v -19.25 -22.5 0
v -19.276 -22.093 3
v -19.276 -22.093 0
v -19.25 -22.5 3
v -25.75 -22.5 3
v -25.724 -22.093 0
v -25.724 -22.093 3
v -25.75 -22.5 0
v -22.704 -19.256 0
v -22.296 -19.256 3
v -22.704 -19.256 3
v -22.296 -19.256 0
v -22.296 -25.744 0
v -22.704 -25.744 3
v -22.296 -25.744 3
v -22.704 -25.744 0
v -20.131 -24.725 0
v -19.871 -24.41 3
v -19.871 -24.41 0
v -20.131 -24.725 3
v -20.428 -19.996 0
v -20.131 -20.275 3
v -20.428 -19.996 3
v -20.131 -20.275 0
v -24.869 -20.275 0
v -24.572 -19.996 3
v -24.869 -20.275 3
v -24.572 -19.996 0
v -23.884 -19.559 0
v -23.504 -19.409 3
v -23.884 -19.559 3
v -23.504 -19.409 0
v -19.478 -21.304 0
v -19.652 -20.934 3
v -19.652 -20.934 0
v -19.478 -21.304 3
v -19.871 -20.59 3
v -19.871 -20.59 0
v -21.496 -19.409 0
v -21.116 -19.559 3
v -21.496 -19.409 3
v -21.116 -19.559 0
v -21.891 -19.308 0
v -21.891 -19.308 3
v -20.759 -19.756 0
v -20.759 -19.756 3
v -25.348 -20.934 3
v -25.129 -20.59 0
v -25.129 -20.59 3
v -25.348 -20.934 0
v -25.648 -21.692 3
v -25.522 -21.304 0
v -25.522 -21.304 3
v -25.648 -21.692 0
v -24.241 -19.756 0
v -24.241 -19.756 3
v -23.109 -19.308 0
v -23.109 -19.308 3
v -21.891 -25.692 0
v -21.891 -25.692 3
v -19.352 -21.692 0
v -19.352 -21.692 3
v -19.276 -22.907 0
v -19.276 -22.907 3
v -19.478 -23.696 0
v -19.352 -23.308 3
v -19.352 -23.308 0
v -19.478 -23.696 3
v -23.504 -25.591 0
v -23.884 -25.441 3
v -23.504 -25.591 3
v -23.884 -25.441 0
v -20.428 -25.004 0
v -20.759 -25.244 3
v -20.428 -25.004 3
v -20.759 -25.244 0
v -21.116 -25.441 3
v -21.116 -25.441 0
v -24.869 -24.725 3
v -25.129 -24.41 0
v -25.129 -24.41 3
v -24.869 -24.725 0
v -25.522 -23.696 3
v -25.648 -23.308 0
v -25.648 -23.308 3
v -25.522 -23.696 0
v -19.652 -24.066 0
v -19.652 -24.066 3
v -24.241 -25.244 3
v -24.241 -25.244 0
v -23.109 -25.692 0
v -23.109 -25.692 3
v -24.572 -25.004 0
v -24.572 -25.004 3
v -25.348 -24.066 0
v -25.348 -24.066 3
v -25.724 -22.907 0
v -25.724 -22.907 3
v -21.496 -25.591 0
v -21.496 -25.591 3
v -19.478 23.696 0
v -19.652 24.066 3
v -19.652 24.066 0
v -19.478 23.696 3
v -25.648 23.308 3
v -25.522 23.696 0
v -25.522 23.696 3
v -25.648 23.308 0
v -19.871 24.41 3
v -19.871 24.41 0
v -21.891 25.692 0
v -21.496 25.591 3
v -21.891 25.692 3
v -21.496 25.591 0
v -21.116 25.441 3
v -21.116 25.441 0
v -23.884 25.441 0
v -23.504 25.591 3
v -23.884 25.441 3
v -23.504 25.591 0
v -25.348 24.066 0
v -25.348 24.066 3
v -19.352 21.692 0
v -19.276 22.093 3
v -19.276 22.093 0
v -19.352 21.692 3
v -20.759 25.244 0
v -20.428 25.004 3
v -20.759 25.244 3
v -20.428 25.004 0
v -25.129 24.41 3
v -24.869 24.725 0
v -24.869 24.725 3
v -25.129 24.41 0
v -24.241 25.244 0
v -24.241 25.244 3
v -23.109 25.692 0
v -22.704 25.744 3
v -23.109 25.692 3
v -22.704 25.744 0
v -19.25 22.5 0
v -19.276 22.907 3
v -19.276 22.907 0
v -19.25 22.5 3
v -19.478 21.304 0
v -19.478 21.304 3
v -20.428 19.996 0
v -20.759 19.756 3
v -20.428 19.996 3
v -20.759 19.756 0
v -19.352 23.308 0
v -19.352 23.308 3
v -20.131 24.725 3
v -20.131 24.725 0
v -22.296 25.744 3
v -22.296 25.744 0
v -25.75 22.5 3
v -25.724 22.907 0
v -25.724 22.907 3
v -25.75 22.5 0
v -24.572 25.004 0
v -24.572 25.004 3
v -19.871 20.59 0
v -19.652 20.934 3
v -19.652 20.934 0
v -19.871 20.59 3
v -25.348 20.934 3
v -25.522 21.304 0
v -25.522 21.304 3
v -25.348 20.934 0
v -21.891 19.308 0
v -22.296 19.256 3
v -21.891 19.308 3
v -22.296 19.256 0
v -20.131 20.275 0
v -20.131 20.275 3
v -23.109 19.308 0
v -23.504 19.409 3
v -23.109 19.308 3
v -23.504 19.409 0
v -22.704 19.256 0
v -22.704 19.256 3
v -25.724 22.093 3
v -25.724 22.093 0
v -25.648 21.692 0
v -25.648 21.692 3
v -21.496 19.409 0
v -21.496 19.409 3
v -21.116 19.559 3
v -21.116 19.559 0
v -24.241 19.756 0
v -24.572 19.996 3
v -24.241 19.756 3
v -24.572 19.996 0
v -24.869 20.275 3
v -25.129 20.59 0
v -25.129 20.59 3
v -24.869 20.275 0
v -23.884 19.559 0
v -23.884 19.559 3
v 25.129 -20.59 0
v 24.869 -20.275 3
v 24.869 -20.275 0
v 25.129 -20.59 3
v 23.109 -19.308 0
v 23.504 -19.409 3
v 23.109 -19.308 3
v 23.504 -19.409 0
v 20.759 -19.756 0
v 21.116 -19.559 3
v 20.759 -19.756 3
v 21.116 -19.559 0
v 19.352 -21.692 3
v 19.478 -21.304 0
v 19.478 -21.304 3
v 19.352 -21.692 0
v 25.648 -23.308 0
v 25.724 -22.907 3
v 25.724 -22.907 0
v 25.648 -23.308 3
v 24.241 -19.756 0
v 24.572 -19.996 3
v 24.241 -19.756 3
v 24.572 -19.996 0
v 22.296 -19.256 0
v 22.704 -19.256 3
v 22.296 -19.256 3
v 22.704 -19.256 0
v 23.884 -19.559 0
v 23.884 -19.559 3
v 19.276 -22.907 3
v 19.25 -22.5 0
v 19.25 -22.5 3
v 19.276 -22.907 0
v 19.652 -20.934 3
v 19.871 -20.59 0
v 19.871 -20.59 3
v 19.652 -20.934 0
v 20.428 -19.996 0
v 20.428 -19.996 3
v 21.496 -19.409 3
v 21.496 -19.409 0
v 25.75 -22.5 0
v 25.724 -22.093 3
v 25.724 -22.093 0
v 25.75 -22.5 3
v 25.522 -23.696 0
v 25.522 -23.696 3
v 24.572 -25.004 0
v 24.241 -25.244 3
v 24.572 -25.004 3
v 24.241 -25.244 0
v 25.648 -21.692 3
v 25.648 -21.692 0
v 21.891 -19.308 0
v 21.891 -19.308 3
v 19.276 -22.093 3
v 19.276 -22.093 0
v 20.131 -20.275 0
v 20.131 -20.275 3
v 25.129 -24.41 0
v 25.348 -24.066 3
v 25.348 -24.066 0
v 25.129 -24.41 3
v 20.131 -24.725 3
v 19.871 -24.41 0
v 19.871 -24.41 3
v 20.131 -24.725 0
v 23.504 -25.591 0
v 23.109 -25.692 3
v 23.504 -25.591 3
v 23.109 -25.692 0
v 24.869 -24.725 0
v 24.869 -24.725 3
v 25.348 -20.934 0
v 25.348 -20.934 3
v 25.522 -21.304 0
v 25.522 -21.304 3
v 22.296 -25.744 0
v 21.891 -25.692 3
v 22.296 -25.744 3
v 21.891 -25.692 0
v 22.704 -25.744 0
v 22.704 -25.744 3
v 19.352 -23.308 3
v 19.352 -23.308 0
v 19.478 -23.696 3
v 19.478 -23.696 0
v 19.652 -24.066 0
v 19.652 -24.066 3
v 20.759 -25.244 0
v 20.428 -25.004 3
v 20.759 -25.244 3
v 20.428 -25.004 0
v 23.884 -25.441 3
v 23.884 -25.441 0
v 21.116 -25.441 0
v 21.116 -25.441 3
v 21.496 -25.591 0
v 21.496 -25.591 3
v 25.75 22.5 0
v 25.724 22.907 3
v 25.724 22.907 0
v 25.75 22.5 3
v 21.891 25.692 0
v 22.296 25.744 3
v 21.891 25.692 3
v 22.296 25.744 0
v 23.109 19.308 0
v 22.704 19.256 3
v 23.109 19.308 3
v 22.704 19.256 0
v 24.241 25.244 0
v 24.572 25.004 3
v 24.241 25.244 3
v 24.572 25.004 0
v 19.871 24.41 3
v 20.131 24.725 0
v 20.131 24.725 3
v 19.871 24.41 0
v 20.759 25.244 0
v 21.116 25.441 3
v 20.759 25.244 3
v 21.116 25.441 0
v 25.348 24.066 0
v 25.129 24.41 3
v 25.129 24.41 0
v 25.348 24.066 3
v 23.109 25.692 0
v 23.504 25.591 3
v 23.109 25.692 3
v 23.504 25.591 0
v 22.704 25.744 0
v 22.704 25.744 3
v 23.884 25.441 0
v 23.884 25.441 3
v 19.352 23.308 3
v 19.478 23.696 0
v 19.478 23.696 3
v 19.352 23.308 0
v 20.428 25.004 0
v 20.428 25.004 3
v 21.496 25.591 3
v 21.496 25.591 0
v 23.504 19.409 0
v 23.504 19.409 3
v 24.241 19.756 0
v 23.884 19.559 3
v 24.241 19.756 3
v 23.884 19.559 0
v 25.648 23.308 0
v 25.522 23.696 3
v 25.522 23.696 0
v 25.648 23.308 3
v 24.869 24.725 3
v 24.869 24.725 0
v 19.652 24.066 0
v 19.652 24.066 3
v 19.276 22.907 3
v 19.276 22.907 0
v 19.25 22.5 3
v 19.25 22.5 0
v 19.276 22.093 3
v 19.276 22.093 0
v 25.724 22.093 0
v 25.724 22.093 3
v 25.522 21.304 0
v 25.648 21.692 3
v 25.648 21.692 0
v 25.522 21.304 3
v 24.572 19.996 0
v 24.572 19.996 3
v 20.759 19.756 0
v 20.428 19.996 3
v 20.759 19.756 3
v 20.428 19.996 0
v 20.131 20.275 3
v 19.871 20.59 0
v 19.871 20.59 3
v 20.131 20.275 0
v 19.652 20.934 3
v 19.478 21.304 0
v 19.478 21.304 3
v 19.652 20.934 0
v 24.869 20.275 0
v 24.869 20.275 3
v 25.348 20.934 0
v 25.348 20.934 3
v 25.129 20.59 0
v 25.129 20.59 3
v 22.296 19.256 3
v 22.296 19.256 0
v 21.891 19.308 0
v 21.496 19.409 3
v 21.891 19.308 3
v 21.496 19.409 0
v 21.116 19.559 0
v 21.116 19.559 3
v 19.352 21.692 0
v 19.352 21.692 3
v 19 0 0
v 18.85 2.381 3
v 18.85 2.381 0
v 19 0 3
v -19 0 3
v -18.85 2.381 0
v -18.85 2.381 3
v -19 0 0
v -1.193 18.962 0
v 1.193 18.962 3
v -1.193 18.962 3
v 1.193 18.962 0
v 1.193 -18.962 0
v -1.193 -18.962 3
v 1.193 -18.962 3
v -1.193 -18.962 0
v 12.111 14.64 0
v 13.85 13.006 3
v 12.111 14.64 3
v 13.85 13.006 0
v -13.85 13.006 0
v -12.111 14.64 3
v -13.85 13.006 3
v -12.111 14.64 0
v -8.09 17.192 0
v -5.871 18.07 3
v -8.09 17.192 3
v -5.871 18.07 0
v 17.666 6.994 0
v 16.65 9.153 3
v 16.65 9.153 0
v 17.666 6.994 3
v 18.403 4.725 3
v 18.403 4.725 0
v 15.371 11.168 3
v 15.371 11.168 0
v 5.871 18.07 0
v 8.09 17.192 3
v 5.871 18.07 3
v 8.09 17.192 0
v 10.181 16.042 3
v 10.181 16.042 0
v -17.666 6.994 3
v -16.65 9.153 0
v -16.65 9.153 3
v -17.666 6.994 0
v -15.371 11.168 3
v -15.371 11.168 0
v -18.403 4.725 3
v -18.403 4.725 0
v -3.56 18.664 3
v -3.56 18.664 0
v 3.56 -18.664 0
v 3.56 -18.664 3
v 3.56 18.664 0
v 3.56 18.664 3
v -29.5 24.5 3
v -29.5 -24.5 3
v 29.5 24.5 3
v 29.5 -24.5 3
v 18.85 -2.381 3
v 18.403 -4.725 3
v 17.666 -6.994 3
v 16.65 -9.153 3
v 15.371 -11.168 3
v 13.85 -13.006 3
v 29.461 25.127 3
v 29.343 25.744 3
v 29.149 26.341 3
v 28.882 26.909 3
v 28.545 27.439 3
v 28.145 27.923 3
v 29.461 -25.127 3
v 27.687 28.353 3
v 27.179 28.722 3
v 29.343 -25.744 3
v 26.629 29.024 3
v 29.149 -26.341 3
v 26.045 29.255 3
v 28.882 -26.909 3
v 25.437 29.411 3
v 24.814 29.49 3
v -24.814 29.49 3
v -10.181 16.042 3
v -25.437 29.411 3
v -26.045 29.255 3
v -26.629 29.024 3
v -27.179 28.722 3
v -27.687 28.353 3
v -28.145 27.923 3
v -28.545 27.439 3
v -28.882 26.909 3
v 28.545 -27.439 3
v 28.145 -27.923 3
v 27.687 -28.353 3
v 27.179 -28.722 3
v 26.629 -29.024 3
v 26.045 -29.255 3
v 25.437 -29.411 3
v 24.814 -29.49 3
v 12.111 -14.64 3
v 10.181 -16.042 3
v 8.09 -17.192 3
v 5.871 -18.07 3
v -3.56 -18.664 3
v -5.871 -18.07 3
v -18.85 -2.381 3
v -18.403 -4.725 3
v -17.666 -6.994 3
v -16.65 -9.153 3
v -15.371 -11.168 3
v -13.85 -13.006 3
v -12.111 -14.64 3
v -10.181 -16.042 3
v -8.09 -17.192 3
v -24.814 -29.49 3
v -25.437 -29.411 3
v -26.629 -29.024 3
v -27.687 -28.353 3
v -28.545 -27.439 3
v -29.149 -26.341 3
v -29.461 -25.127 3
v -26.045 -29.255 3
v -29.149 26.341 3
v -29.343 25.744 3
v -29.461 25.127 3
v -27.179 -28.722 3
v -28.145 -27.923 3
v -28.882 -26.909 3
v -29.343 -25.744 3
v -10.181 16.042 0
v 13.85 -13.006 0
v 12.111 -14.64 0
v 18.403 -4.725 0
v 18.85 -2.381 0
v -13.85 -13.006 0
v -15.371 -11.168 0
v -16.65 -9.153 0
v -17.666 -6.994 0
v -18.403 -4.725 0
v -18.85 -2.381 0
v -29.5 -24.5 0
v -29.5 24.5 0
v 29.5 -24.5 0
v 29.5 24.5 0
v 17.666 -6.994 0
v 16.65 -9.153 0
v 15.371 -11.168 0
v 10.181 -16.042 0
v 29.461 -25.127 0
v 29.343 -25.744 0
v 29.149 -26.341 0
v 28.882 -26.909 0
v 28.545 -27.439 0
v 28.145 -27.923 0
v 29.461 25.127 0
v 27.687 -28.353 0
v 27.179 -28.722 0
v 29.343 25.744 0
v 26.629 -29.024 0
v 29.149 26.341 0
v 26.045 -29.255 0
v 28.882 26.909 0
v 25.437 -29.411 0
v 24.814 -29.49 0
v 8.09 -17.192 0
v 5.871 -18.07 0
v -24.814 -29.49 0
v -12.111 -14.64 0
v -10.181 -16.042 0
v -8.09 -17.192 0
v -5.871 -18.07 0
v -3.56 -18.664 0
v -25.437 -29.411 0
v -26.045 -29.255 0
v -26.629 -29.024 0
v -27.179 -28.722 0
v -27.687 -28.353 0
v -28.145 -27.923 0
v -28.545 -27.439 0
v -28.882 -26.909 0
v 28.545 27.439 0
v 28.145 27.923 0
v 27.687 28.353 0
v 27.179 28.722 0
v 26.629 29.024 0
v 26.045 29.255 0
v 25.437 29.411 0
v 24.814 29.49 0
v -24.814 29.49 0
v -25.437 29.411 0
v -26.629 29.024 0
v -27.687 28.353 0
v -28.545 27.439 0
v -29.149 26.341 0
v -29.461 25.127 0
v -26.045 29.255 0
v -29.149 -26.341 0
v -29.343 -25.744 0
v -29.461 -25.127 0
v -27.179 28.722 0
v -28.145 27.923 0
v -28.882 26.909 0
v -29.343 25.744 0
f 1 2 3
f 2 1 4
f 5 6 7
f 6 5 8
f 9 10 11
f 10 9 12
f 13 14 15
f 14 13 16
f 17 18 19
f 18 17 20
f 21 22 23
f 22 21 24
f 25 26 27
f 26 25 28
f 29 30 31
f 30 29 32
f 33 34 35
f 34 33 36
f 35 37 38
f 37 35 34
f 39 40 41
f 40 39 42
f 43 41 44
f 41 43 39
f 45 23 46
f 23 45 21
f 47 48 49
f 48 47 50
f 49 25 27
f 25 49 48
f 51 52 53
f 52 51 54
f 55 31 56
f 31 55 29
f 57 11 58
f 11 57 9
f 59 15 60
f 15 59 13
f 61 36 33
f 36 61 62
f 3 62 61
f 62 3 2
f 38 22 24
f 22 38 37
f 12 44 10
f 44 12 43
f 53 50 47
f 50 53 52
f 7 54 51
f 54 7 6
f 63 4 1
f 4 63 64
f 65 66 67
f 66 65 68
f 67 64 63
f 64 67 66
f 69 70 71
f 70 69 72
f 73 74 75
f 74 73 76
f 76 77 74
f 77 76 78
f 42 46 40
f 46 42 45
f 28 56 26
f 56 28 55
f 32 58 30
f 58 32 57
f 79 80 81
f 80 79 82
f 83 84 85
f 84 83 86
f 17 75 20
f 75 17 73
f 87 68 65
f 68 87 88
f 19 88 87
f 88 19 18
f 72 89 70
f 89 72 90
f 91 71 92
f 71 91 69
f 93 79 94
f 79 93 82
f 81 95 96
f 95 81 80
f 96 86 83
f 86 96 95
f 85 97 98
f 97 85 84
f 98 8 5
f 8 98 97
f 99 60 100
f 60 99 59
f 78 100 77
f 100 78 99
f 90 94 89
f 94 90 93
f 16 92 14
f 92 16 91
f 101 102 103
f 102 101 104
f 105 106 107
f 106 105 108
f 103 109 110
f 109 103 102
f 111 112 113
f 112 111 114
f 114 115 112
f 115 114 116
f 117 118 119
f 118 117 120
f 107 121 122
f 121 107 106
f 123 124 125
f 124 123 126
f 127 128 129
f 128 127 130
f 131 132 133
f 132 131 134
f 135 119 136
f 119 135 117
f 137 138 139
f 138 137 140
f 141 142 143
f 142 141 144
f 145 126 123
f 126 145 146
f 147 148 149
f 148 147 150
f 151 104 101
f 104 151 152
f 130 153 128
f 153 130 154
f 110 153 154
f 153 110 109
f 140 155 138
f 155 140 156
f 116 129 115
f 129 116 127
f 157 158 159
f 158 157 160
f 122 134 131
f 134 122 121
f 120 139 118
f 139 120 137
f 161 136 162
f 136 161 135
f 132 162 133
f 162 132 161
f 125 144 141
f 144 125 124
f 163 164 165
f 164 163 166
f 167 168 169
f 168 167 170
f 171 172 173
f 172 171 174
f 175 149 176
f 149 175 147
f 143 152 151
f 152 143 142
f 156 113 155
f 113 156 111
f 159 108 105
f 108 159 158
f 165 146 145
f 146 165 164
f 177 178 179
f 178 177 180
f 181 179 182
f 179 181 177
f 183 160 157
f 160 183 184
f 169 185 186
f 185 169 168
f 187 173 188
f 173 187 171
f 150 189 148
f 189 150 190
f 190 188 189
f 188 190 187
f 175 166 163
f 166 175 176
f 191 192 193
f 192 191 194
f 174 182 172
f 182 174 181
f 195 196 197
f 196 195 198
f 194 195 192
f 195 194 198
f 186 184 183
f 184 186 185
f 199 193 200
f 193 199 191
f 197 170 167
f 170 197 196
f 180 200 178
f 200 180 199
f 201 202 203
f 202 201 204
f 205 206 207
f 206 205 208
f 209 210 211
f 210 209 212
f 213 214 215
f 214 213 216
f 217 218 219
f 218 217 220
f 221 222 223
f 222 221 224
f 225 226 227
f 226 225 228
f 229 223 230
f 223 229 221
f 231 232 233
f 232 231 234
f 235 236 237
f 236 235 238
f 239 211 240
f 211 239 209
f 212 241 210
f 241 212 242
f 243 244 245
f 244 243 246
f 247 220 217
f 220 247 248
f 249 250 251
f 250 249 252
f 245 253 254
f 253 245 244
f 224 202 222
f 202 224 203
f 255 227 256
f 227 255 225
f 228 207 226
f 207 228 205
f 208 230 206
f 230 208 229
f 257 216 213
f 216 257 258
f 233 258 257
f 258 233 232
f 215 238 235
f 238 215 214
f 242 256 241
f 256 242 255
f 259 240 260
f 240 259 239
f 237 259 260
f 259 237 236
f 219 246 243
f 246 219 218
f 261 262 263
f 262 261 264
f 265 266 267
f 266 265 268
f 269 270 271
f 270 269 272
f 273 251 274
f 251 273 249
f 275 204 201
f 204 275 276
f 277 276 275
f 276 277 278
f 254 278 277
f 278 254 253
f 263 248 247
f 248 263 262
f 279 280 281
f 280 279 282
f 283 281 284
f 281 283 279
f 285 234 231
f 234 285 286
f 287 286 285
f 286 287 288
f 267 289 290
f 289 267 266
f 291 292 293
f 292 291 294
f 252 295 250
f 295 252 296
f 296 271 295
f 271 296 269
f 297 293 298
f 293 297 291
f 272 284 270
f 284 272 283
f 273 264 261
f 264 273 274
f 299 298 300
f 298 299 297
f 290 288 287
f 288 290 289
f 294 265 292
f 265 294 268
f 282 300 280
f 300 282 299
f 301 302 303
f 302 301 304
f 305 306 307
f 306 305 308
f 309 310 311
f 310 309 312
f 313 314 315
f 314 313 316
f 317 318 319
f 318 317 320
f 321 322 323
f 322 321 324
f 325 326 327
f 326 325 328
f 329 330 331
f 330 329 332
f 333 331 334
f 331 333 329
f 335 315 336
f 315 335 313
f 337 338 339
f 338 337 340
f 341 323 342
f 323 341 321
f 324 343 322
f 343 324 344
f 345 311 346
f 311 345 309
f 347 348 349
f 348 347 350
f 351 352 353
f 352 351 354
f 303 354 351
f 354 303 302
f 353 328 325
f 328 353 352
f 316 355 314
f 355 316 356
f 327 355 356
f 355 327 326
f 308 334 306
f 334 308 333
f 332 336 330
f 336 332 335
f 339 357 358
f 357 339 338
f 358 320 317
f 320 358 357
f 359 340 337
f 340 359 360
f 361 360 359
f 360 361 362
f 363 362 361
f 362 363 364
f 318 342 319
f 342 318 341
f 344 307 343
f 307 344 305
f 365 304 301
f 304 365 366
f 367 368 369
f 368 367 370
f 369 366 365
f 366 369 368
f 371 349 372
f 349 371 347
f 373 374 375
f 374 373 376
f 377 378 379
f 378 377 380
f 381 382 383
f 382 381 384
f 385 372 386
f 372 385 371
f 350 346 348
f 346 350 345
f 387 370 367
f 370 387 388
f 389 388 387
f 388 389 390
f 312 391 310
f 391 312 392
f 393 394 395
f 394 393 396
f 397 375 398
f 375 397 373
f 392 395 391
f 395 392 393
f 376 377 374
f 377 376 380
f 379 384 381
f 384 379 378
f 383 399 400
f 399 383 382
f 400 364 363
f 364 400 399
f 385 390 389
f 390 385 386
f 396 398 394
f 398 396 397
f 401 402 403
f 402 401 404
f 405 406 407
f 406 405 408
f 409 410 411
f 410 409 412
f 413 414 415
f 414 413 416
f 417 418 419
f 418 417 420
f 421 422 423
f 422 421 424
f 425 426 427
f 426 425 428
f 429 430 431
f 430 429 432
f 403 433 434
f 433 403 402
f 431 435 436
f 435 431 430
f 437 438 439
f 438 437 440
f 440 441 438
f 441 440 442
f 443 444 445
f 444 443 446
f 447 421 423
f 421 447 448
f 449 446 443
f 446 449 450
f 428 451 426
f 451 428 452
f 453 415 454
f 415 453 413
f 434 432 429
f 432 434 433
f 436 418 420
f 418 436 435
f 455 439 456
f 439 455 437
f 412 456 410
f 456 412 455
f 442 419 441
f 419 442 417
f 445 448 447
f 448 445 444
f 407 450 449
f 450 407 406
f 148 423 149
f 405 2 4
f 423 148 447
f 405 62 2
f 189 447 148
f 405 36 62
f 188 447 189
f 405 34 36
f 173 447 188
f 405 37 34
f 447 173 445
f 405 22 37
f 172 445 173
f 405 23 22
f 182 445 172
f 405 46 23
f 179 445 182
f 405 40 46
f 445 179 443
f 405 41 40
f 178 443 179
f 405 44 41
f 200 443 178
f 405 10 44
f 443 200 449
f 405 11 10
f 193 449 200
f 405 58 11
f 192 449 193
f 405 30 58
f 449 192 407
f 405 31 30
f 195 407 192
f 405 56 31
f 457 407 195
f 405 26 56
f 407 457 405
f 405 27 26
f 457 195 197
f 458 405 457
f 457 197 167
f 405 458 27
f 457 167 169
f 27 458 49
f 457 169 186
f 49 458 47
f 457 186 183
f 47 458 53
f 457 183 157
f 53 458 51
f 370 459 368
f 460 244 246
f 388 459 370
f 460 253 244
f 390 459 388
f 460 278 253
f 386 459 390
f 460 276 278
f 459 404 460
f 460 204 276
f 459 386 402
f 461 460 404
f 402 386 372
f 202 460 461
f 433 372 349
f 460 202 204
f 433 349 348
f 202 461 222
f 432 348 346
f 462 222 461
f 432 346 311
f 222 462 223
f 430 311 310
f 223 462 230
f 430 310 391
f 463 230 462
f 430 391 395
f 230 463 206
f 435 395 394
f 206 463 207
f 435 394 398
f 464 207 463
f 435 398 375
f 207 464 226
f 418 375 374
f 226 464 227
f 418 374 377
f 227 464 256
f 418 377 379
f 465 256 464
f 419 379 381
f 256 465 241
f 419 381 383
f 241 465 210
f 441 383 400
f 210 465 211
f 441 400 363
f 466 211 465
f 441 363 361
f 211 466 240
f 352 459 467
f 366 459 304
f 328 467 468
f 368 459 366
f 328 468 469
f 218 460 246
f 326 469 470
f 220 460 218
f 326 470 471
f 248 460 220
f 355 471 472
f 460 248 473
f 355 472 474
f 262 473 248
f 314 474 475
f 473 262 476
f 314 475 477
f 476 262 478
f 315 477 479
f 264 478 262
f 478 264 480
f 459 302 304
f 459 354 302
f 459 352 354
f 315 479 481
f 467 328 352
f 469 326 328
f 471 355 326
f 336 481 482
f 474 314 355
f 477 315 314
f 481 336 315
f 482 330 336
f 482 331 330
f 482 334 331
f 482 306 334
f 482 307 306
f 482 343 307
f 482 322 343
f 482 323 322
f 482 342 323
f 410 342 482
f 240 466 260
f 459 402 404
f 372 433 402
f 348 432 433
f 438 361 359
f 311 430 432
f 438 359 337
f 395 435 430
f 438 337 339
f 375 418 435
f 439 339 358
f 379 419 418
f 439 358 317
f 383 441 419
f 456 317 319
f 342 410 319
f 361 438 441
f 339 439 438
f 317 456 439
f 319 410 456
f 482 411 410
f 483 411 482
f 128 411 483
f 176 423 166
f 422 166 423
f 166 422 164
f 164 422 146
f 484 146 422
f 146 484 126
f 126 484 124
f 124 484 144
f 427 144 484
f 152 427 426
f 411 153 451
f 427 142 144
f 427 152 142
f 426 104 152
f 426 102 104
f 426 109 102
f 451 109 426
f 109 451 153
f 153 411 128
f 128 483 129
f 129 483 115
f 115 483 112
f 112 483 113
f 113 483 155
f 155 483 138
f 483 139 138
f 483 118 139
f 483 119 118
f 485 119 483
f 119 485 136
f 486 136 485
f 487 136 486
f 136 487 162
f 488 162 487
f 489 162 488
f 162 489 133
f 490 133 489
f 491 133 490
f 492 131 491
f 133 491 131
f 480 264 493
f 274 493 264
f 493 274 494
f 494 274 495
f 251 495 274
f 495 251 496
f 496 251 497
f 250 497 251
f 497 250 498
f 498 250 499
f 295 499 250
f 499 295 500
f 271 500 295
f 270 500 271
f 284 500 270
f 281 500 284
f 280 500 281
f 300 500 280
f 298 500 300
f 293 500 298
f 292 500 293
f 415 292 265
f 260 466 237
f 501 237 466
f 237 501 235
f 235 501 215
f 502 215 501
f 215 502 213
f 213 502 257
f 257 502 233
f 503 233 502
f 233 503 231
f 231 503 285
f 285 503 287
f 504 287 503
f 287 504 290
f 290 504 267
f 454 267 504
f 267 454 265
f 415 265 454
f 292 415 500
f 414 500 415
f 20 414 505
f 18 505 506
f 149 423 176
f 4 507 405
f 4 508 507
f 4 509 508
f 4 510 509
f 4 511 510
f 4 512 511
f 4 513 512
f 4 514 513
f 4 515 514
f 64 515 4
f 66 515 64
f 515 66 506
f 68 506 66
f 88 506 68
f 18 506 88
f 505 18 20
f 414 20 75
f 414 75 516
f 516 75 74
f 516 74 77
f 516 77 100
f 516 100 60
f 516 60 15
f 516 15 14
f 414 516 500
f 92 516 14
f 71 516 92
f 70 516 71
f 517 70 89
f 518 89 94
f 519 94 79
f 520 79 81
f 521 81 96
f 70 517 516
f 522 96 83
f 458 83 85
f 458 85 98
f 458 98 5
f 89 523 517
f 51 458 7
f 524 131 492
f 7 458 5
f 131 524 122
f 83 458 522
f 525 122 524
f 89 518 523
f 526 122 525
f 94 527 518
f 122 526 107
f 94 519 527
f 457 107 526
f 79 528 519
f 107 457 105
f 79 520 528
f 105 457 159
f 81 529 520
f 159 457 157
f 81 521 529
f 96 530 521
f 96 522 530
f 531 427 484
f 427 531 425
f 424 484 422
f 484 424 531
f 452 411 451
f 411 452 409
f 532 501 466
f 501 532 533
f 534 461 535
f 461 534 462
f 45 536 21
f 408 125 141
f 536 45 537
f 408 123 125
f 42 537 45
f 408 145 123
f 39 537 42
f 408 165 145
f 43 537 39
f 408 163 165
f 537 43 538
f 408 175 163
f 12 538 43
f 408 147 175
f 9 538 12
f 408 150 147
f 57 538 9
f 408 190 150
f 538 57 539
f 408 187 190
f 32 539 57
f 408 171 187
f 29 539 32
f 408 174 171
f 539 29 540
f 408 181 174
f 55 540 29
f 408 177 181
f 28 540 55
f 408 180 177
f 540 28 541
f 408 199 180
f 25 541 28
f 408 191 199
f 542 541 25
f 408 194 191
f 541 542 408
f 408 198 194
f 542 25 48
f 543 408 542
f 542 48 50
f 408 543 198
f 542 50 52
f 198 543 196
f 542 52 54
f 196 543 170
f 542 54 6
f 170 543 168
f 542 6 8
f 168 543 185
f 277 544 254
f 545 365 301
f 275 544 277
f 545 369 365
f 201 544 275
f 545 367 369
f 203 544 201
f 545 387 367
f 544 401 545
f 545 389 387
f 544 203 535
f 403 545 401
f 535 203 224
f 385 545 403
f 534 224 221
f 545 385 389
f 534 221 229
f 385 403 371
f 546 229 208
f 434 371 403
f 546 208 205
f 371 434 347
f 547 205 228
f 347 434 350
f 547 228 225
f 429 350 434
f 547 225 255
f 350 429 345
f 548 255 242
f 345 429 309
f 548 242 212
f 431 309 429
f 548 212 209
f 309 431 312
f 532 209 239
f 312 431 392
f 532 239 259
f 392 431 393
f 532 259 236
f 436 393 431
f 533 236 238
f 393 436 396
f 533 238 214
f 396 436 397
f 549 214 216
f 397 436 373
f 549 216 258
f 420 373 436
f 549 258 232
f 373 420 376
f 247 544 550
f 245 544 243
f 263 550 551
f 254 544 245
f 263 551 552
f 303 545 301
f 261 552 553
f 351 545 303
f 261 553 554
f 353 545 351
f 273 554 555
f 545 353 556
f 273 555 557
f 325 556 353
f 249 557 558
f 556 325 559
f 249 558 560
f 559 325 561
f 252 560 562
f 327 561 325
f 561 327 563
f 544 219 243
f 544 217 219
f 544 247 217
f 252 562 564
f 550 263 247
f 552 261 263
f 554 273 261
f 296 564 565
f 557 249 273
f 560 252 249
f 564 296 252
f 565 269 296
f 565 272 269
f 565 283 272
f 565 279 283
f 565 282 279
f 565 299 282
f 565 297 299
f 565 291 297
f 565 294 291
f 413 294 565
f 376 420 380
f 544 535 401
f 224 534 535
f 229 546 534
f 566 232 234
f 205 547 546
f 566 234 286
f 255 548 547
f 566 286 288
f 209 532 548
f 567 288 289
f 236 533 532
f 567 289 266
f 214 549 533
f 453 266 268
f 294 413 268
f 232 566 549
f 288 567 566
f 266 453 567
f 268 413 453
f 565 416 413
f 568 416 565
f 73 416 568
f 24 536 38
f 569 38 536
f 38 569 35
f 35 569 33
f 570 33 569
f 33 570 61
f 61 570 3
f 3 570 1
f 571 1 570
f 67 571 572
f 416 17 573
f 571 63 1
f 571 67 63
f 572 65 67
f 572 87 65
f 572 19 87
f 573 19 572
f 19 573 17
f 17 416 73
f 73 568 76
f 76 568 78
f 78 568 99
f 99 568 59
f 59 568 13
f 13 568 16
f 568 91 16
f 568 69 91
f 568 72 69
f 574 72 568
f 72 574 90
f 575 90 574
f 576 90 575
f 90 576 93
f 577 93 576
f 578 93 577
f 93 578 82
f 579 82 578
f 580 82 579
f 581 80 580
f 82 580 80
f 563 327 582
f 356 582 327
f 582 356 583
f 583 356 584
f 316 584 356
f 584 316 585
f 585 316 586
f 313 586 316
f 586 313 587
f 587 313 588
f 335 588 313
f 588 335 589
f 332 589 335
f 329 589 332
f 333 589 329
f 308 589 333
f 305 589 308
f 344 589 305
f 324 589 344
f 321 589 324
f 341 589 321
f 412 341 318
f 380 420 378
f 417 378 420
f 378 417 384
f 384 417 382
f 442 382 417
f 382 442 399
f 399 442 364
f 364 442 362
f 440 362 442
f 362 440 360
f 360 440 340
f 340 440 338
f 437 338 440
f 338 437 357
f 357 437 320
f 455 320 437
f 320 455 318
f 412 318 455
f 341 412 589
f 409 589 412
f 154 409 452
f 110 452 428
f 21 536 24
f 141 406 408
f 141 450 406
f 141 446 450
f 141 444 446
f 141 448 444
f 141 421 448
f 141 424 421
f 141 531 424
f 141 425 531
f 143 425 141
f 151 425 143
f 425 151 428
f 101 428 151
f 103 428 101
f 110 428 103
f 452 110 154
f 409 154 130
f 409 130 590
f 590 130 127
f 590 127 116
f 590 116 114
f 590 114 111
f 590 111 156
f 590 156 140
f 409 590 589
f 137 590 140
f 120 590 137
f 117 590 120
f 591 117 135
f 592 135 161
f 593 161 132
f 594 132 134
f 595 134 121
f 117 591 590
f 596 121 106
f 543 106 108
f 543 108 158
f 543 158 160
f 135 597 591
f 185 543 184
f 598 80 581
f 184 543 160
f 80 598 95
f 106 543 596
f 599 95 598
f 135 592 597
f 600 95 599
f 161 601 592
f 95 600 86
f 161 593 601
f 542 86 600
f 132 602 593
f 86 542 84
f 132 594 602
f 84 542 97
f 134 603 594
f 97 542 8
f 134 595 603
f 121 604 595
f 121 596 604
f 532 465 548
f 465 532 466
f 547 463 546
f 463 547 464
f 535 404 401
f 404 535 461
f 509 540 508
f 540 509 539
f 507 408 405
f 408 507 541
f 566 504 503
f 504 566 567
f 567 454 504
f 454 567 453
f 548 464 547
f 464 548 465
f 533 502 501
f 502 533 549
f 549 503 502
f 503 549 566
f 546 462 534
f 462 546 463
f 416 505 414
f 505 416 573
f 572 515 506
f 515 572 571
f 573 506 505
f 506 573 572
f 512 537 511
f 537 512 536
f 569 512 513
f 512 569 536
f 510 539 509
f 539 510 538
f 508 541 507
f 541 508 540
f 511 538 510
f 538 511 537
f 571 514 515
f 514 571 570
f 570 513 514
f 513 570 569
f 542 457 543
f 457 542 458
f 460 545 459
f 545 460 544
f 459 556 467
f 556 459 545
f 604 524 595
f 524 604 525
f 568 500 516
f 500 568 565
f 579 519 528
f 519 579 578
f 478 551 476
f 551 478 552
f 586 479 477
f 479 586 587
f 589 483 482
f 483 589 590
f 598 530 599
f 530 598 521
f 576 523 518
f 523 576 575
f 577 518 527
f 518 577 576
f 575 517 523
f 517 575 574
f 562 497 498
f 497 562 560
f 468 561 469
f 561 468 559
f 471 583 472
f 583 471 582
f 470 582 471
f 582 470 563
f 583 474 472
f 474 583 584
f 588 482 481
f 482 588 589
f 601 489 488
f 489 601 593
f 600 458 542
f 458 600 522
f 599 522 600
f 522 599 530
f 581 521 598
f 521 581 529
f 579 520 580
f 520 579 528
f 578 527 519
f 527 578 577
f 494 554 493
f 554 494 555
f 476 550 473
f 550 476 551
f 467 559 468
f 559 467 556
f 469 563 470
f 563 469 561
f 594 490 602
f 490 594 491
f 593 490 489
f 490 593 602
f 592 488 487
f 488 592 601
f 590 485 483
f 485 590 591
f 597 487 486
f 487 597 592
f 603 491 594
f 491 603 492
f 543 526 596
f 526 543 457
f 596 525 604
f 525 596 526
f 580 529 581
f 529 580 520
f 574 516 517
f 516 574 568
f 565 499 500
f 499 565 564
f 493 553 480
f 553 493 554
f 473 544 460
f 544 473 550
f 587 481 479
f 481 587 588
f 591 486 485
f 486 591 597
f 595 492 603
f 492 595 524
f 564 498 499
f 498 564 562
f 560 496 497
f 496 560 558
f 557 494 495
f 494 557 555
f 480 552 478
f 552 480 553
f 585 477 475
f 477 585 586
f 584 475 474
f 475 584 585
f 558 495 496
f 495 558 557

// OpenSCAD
$fn = 50;


difference() {
	union() {
		hull() {
			translate(v = [-24.5000000000, 24.5000000000, 0]) {
				cylinder(h = 3, r = 5);
			}
			translate(v = [24.5000000000, 24.5000000000, 0]) {
				cylinder(h = 3, r = 5);
			}
			translate(v = [-24.5000000000, -24.5000000000, 0]) {
				cylinder(h = 3, r = 5);
			}
			translate(v = [24.5000000000, -24.5000000000, 0]) {
				cylinder(h = 3, r = 5);
			}
		}
	}
	union() {
		#translate(v = [-22.5000000000, -22.5000000000, -100.0000000000]) {
			cylinder(h = 200, r = 3.2500000000);
		}
		#translate(v = [-22.5000000000, 22.5000000000, -100.0000000000]) {
			cylinder(h = 200, r = 3.2500000000);
		}
		#translate(v = [22.5000000000, -22.5000000000, -100.0000000000]) {
			cylinder(h = 200, r = 3.2500000000);
		}
		#translate(v = [22.5000000000, 22.5000000000, -100.0000000000]) {
			cylinder(h = 200, r = 3.2500000000);
		}
		#cylinder(h = 3, r = 19.0000000000);
	}
}
